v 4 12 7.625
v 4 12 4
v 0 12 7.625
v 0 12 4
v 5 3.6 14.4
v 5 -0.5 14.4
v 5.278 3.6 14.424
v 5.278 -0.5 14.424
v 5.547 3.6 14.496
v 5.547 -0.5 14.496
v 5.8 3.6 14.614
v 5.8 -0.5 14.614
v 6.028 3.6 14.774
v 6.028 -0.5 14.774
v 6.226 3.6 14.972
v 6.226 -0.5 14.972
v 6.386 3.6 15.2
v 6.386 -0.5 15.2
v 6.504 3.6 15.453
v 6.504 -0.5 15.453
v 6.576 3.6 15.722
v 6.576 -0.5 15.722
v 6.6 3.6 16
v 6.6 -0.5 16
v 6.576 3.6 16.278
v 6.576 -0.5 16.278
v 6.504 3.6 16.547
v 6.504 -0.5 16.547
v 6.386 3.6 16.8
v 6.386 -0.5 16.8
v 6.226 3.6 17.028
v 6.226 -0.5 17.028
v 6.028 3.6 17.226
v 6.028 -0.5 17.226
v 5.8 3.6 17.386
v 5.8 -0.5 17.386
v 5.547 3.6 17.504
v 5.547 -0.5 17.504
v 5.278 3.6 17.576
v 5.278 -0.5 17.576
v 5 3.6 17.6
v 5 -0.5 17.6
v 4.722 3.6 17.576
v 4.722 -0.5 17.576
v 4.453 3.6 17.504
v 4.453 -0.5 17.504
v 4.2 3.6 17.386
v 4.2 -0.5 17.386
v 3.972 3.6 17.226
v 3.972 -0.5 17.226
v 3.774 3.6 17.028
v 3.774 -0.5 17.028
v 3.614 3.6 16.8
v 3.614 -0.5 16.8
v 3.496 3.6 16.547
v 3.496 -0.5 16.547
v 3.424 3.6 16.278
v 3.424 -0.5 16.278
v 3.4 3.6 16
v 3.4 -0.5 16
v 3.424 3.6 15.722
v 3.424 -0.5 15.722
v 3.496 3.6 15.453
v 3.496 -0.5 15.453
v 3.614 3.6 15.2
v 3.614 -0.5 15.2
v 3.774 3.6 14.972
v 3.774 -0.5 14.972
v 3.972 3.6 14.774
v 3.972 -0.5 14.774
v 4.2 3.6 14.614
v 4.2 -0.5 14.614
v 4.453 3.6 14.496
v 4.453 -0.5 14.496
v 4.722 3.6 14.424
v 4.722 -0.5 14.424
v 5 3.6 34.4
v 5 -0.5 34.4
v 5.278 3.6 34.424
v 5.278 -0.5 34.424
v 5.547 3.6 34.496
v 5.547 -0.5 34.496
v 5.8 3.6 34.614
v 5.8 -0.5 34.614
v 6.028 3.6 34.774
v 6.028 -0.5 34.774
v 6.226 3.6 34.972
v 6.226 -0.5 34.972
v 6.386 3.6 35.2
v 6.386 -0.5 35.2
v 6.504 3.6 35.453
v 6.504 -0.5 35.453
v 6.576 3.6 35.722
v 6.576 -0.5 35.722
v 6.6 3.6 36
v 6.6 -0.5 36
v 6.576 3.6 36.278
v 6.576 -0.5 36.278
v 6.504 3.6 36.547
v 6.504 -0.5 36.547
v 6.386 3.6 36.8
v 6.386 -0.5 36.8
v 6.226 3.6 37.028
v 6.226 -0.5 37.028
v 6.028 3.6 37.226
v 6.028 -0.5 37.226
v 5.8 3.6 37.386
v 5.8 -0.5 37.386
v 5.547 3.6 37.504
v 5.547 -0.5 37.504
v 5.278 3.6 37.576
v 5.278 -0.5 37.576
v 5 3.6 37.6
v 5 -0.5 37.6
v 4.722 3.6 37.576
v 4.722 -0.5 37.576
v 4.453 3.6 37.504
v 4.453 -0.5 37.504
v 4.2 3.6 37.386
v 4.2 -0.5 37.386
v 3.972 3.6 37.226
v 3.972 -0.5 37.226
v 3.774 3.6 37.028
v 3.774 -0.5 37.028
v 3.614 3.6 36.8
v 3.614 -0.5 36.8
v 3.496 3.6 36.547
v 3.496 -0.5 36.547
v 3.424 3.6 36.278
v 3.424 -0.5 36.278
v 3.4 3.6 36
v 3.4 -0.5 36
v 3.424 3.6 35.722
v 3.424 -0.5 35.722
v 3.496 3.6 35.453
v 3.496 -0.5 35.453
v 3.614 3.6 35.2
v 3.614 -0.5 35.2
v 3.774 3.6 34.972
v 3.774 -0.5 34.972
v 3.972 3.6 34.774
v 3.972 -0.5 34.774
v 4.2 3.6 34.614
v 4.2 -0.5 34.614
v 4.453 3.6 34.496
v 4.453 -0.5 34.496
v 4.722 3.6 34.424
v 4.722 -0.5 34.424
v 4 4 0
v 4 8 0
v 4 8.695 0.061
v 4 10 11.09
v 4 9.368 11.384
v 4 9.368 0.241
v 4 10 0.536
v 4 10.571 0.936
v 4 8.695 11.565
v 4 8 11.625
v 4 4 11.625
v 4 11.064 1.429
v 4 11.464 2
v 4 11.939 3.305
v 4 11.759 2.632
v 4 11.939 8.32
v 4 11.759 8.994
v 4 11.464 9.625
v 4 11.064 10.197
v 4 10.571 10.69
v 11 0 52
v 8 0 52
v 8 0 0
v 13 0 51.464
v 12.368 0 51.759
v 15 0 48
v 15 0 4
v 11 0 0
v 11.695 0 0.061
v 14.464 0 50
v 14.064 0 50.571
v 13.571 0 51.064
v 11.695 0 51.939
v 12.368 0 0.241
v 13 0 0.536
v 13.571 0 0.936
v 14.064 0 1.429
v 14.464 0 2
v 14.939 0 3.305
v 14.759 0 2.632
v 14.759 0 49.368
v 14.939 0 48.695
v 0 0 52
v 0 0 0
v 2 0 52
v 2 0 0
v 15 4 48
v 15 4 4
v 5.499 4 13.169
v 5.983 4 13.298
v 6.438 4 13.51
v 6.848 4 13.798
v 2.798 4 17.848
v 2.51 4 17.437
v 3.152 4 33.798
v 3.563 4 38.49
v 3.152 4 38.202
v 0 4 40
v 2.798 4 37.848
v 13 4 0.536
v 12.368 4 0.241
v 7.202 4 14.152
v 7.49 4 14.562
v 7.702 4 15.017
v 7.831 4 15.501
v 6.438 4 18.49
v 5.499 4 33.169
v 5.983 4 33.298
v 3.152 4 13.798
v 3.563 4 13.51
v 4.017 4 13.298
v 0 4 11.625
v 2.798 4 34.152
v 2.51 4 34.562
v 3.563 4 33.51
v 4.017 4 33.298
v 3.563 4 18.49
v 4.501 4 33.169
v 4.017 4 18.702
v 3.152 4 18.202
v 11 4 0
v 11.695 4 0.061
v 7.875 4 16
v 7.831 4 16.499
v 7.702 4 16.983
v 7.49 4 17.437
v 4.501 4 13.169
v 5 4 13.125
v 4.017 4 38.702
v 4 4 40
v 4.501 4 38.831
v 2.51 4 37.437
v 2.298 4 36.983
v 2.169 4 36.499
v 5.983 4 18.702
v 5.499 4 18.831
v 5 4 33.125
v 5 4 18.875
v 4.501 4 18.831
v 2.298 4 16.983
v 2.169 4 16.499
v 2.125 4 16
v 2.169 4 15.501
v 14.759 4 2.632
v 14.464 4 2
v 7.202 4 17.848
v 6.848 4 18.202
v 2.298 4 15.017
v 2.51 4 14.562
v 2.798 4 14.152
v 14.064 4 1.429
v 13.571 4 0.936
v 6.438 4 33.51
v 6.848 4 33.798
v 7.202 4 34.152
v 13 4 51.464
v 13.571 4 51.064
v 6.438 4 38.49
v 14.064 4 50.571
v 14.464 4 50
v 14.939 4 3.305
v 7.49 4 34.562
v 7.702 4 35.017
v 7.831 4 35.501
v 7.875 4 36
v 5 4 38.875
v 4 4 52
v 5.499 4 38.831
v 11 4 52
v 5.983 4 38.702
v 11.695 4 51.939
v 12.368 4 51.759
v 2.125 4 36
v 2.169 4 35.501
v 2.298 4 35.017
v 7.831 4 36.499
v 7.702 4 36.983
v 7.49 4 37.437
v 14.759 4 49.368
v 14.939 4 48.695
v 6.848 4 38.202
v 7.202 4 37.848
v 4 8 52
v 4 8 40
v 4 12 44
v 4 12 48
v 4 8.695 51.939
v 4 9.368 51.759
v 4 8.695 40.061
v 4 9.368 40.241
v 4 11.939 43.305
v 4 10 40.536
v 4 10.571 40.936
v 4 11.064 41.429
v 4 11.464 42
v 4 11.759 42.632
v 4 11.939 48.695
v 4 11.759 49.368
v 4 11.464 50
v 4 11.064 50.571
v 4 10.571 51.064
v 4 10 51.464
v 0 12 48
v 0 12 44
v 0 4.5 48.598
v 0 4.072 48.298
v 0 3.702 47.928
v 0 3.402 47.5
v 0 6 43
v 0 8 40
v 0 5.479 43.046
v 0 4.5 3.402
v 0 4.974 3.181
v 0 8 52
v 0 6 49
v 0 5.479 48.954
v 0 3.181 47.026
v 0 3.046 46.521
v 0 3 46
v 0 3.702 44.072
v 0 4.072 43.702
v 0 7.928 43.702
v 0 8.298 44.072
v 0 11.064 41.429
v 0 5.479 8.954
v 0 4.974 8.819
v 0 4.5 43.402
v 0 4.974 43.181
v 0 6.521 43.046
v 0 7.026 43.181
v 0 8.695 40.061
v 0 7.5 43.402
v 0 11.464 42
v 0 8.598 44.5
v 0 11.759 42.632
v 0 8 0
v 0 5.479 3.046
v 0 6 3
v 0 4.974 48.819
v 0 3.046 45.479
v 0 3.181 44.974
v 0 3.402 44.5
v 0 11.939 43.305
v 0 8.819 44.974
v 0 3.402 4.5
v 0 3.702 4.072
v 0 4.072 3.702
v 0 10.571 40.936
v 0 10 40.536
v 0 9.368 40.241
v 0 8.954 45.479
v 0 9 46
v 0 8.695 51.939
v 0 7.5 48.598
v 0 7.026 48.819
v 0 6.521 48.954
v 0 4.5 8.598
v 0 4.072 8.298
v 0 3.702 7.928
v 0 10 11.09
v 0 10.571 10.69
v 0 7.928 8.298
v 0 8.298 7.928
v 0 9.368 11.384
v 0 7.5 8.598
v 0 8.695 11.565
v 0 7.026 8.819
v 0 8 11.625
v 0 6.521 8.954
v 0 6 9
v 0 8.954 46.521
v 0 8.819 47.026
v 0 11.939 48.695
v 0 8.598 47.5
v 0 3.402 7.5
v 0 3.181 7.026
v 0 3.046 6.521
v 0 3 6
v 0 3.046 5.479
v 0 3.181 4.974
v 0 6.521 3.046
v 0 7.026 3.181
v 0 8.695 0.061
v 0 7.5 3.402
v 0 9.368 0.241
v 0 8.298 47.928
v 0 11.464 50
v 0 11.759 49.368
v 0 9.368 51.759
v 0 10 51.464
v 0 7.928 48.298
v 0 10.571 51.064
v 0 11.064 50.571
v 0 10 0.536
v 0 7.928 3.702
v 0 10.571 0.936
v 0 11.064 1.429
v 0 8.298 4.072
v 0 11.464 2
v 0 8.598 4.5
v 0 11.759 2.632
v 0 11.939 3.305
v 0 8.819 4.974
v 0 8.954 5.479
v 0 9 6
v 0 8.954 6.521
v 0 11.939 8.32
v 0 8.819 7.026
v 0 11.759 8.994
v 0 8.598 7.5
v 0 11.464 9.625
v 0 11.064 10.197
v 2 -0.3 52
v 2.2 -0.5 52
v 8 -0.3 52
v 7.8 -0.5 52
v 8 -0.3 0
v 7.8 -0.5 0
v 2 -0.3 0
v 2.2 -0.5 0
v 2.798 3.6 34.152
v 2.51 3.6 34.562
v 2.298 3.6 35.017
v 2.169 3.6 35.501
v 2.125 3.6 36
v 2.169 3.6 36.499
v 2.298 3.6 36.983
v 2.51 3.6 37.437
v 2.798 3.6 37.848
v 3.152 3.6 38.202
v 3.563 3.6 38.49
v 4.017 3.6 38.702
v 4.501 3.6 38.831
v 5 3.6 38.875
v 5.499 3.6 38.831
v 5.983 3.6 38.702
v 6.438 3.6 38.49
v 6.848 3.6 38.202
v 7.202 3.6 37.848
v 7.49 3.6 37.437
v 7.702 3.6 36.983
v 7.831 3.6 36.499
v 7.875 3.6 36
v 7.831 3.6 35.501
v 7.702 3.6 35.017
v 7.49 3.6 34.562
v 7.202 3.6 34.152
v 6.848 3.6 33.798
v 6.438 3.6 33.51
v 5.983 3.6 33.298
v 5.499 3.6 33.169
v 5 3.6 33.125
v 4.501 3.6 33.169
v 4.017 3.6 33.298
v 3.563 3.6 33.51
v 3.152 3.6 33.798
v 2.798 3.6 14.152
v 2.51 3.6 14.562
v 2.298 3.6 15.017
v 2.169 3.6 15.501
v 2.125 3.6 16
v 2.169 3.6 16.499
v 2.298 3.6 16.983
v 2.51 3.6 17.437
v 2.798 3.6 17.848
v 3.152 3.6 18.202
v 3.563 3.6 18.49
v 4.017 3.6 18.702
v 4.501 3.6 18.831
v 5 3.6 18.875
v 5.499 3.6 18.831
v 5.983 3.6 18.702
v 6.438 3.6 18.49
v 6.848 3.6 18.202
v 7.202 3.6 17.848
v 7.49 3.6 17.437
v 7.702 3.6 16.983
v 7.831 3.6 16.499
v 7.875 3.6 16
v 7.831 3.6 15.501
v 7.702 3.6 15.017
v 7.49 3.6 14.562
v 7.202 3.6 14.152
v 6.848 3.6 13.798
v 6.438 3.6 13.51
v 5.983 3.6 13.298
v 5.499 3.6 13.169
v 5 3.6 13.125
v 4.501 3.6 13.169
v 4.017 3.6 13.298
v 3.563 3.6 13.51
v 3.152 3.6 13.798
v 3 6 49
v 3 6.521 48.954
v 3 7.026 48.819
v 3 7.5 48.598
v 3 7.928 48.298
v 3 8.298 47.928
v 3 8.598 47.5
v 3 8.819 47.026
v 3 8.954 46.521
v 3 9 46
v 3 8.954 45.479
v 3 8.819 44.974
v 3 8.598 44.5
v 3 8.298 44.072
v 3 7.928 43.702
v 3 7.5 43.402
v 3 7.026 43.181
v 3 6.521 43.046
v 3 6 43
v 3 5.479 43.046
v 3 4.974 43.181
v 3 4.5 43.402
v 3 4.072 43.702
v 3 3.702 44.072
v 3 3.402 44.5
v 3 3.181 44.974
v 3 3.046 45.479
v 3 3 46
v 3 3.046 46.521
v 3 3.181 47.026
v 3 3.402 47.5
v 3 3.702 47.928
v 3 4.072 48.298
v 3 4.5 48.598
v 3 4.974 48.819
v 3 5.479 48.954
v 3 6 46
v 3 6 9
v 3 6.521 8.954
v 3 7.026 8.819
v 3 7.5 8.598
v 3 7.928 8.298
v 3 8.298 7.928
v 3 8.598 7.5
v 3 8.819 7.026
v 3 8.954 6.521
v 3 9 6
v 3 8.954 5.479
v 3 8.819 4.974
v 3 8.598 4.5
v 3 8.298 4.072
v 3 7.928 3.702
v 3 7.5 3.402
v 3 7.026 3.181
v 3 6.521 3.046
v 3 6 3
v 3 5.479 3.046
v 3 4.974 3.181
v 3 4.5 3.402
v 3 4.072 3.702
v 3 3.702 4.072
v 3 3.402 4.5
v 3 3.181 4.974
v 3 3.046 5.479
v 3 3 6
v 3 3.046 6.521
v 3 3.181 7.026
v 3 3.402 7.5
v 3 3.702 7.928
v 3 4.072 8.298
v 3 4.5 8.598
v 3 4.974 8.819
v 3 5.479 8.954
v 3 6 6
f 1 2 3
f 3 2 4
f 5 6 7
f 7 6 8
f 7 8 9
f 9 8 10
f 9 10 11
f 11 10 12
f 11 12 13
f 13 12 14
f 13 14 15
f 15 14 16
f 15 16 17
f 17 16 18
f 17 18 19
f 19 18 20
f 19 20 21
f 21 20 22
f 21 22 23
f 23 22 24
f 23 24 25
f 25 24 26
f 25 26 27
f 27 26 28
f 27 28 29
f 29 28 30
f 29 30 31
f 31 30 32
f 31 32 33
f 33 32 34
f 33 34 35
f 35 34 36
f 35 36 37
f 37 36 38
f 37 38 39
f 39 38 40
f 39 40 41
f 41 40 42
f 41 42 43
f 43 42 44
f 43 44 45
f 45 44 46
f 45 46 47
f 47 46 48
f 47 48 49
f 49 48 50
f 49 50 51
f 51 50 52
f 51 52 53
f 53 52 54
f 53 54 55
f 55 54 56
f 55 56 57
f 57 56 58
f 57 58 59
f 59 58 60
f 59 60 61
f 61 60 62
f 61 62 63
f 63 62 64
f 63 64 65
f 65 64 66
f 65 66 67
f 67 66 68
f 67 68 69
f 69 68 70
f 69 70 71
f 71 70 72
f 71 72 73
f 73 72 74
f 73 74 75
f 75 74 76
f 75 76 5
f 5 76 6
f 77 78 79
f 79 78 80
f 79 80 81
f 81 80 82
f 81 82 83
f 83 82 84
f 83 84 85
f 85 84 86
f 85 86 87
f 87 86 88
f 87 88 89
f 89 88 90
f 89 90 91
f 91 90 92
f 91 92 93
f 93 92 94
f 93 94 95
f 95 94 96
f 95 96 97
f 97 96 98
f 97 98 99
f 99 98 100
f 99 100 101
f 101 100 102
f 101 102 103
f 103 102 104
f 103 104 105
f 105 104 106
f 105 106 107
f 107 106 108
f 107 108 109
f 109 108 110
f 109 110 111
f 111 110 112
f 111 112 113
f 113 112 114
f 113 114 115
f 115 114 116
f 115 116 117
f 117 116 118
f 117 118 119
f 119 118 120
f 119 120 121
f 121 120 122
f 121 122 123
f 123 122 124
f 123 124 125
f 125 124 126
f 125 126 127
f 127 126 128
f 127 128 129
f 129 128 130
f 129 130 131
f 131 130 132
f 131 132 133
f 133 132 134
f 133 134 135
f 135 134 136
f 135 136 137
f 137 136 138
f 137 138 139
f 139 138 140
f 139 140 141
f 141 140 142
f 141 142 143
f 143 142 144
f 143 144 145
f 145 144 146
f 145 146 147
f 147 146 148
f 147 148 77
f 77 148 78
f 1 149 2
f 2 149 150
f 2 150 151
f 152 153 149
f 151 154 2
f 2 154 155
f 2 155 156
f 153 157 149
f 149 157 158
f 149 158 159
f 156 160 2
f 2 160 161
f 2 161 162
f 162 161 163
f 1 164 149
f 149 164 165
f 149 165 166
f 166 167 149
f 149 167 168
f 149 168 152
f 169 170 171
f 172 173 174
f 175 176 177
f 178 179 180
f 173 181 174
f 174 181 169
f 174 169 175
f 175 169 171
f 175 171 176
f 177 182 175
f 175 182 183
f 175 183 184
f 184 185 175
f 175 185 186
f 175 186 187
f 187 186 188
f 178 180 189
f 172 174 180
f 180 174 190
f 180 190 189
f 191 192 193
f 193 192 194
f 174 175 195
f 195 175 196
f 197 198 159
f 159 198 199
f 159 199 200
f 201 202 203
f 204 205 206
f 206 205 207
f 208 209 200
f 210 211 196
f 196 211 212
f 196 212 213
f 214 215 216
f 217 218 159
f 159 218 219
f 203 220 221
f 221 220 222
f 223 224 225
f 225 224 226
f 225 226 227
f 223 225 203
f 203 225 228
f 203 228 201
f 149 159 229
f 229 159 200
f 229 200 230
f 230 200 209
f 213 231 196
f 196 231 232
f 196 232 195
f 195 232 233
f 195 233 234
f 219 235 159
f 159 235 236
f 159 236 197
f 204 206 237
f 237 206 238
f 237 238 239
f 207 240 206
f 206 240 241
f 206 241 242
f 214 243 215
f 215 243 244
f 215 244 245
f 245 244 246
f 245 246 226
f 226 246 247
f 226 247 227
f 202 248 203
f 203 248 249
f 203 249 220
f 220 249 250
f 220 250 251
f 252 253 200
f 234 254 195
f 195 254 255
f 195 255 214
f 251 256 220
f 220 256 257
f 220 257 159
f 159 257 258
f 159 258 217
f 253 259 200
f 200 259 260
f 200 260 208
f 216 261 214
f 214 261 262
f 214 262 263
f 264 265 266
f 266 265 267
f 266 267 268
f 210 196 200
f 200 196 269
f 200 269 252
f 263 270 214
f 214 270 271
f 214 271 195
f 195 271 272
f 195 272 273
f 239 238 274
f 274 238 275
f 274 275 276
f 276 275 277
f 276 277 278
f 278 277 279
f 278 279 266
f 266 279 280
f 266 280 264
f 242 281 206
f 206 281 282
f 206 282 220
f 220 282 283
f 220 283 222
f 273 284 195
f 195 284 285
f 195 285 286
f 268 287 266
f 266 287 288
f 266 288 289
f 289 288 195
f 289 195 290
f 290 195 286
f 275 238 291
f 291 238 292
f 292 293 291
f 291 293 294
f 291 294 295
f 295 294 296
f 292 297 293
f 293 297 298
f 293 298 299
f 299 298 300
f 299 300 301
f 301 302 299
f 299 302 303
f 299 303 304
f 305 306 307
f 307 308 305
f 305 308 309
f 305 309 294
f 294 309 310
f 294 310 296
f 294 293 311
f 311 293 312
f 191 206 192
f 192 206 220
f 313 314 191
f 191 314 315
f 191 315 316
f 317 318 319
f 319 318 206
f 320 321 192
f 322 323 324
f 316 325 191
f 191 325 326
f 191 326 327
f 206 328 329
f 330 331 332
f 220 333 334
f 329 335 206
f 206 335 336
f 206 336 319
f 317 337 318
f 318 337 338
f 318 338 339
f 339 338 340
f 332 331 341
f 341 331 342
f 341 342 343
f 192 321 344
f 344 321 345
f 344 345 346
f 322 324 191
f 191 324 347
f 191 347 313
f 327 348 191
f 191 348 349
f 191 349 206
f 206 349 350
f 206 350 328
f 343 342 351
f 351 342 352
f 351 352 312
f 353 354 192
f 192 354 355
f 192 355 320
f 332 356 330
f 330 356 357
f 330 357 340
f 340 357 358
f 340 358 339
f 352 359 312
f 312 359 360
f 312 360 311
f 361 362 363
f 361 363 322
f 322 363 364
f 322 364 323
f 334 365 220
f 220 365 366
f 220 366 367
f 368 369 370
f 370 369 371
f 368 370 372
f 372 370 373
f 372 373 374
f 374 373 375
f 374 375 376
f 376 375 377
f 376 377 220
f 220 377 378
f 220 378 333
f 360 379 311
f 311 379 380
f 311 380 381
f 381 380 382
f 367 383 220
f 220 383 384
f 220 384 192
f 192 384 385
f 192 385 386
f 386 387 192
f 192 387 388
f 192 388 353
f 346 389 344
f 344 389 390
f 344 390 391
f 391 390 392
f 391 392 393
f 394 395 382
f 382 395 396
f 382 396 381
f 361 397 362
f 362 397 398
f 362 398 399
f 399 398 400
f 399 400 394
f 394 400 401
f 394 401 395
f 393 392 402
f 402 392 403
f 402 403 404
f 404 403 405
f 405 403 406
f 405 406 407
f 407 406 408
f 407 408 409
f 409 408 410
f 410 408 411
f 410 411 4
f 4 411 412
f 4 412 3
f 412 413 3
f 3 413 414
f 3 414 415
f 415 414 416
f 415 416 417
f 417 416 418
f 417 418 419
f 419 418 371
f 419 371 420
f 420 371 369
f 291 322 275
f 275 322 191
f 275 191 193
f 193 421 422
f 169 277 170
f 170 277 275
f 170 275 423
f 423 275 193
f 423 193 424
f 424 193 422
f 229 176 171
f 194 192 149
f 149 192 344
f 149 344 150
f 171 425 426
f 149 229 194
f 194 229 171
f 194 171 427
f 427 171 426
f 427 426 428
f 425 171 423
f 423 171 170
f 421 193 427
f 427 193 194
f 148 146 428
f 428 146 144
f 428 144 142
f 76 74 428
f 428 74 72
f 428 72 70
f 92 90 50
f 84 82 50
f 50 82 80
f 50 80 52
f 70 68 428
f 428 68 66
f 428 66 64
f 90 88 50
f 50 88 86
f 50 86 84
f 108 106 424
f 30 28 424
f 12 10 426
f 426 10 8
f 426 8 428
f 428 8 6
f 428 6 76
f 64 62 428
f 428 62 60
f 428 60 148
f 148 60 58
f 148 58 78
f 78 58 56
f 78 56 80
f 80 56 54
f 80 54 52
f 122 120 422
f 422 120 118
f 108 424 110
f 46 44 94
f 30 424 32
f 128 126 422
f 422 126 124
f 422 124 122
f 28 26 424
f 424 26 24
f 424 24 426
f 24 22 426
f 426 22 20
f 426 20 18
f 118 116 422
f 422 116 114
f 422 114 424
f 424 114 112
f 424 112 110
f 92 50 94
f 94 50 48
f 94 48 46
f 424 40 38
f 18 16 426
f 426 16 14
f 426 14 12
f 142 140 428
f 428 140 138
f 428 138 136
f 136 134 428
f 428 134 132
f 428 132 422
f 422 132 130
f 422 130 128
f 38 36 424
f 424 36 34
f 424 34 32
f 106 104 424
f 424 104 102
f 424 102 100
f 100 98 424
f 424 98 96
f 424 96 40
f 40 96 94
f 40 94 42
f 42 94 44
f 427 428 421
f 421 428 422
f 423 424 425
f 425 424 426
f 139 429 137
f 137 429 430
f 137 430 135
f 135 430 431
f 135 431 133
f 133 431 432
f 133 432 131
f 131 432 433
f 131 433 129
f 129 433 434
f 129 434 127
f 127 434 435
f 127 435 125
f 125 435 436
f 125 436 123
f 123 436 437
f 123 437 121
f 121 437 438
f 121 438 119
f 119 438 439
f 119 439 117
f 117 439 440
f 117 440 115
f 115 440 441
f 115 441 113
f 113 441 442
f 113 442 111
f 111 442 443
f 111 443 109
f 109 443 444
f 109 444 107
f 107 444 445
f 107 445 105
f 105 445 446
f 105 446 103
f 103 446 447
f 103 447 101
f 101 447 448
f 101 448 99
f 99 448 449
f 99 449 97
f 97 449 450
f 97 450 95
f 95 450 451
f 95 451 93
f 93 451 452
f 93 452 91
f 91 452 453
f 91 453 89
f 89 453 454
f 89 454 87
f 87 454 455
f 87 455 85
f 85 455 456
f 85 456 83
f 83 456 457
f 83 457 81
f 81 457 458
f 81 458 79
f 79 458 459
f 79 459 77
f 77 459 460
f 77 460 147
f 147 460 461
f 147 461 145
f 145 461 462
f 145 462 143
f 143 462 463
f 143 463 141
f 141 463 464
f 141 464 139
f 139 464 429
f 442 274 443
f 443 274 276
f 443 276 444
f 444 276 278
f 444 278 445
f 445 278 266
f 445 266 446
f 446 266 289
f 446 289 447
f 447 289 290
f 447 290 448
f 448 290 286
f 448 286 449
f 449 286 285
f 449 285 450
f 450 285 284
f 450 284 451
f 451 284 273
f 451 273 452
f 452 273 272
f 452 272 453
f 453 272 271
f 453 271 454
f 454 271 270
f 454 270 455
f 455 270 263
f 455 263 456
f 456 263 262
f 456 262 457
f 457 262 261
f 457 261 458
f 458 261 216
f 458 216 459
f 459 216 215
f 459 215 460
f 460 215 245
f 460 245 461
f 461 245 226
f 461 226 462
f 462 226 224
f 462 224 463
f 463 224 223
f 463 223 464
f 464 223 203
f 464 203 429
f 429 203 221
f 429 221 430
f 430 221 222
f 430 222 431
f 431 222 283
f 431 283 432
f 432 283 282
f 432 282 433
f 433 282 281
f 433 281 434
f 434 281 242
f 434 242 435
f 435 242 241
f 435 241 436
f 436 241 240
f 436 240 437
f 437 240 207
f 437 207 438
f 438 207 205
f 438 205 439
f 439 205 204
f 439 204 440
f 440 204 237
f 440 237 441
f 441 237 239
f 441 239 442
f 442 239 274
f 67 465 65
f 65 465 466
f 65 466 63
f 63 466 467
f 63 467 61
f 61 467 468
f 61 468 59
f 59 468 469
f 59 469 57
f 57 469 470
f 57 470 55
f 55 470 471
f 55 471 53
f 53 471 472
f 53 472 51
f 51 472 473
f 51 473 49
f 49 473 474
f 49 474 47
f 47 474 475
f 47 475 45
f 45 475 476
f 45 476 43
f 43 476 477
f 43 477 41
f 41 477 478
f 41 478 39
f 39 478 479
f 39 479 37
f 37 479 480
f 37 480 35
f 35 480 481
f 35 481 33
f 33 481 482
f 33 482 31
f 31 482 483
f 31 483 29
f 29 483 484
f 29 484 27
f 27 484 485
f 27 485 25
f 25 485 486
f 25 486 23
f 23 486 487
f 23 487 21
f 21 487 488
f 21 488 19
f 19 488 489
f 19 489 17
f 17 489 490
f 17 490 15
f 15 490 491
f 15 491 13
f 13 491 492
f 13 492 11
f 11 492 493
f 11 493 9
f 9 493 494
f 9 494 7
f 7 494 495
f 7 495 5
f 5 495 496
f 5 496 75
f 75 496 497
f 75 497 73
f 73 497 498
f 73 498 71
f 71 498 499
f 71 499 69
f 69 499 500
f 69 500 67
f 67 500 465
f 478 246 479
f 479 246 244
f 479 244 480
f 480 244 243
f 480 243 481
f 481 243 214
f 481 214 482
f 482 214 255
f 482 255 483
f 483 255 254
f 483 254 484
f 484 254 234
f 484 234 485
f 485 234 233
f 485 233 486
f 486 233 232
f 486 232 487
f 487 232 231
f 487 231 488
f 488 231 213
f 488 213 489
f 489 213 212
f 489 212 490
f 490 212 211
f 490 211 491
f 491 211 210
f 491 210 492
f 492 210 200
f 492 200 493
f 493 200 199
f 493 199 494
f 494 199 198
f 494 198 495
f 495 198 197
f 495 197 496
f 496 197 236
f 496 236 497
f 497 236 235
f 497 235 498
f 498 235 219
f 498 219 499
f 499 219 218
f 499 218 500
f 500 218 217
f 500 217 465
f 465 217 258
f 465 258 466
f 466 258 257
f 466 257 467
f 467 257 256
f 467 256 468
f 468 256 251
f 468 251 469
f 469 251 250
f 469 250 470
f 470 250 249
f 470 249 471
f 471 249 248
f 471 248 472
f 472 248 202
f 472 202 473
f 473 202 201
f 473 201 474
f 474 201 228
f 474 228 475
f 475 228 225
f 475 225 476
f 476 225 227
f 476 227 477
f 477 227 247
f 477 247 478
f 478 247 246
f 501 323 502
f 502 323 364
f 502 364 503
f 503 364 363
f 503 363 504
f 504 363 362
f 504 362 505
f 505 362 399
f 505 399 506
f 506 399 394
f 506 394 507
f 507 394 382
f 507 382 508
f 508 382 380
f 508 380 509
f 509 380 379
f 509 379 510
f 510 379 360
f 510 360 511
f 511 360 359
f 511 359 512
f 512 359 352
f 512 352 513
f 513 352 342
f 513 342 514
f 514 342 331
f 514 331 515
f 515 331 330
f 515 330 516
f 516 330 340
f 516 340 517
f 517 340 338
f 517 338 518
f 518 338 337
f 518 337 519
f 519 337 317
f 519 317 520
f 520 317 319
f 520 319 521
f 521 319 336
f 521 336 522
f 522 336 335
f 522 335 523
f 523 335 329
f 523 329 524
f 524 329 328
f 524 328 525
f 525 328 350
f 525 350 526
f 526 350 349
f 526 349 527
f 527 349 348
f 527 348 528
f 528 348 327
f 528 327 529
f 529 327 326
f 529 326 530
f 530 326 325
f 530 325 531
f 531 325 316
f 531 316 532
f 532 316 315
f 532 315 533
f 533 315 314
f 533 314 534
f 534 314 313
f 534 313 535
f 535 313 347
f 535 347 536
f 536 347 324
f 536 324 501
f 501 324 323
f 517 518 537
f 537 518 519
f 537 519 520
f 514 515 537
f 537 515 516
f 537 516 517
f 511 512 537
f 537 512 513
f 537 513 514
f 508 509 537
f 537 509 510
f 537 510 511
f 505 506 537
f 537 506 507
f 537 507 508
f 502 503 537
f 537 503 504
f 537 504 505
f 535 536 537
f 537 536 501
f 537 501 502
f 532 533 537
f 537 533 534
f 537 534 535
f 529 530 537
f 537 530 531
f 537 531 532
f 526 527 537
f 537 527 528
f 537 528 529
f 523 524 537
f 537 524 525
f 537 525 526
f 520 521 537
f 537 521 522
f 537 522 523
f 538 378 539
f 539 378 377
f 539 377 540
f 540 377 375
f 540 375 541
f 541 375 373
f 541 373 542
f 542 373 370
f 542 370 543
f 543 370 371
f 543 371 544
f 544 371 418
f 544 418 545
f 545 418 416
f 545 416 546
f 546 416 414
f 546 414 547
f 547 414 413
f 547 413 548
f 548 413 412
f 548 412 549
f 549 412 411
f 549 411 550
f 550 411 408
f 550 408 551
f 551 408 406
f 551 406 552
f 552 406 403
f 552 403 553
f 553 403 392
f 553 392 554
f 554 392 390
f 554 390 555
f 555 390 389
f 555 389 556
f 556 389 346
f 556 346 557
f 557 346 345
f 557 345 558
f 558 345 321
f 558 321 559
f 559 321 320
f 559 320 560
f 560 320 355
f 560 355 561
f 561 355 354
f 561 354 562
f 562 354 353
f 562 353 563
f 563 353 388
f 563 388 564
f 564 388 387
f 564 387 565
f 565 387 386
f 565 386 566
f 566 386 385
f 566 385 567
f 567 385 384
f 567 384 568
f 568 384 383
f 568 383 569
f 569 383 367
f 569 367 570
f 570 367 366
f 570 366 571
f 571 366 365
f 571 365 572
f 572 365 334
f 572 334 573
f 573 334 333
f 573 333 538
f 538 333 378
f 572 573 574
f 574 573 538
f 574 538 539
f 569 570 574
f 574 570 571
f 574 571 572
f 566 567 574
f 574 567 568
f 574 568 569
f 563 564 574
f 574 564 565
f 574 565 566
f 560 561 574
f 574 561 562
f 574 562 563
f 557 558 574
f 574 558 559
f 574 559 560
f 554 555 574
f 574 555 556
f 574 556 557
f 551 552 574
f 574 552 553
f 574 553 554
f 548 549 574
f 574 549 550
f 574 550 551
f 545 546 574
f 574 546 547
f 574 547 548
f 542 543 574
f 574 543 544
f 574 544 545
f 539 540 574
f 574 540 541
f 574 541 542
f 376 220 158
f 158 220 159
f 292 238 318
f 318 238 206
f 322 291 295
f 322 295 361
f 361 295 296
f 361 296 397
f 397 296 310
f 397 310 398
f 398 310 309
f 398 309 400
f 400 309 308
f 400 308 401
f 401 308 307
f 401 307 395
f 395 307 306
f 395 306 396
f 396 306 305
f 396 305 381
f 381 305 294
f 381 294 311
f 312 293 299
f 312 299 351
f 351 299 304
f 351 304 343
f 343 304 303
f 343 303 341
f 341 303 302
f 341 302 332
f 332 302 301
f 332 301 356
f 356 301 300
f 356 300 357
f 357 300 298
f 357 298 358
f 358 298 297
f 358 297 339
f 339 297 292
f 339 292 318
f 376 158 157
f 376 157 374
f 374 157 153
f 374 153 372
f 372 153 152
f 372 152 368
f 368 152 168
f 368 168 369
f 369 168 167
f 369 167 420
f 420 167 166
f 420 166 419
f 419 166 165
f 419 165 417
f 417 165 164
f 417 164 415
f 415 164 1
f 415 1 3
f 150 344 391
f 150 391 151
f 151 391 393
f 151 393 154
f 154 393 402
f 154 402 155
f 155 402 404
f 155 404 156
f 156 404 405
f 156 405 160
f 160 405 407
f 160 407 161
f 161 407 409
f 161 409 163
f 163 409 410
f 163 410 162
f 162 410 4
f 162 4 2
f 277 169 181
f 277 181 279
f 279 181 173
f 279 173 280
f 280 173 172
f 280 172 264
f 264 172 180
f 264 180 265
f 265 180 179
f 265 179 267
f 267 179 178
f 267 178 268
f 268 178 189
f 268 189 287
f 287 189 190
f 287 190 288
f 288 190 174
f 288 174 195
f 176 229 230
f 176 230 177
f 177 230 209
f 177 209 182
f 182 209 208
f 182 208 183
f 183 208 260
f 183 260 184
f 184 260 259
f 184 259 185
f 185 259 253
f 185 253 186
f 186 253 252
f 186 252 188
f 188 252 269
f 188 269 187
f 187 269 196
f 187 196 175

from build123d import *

# Parameters (mm, degrees)
BOSS_EXTRUDE1_DEPTH    = 52
SKETCH5_W              = 6
SKETCH5_H              = 52
BOSS_BOTTOMALIGN_DEPTH = 0.5
FILLET1_SIZE           = 0.2
CUT_BOTTOMHOLE_REACH   = 57.545
SKETCH3_R              = 1.6
SKETCH7_R              = 2.875
CUT_EXTRUDE6_DEPTH     = 0.4
SKETCH6_R              = 3
CUT_MAGNET_DEPTH       = 3
CUT_EXTRUDE7_REACH     = 56.489
SKETCH8_W              = 28.374522614
SKETCH8_H              = 8
FILLET2_R              = 4
FILLET3_R              = 4


with BuildPart() as part:
    # Sketch1 → Boss-Extrude1 (new body)
    with BuildSketch(Plane.XY):
        Polygon((0, 0), (0, 12), (4, 12), (4, 4), (15, 4), (15, 0), align=None)
    extrude(amount=BOSS_EXTRUDE1_DEPTH)

    # Sketch5 → Boss-BottomAlign (add)
    with BuildSketch(Plane.XZ):
        with Locations((5, 26)):
            Rectangle(SKETCH5_W, SKETCH5_H)
    extrude(amount=BOSS_BOTTOMALIGN_DEPTH)

    # Fillet1
    fillet1_edges = [part.edges().sort_by_distance(p)[0] for p in [
        (8, -0.5, 26),
        (2, -0.5, 26),
    ]]
    chamfer(fillet1_edges, length=FILLET1_SIZE)

    # Sketch3 → Cut-BottomHole (cut, up to next)
    with BuildSketch(Plane.XZ.offset(0.5), mode=Mode.PRIVATE) as cut_bottomhole_sk1:
        with Locations(Location((5, 36, 0), (0, 0, 270))):
            Circle(SKETCH3_R)
    cut_bottomhole_tool1 = extrude(cut_bottomhole_sk1.sketch, amount=-CUT_BOTTOMHOLE_REACH, mode=Mode.PRIVATE) & part.part
    # Sketch3 → Cut-BottomHole (cut, up to next)
    with BuildSketch(Plane.XZ.offset(0.5), mode=Mode.PRIVATE) as cut_bottomhole_sk2:
        with Locations(Location((5, 16, 0), (0, 0, 231.317812547))):
            Circle(SKETCH3_R)
    cut_bottomhole_tool2 = extrude(cut_bottomhole_sk2.sketch, amount=-CUT_BOTTOMHOLE_REACH, mode=Mode.PRIVATE) & part.part
    add(cut_bottomhole_tool1.solids().sort_by_distance((5, -0.5, 36))[0], mode=Mode.SUBTRACT)
    add(cut_bottomhole_tool2.solids().sort_by_distance((5, -0.5, 16))[0], mode=Mode.SUBTRACT)

    # Sketch7 → Cut-Extrude6 (cut)
    with BuildSketch(Plane(origin=(0, 4, 0), x_dir=(1, 0, 0), z_dir=(0, 1, 0))):
        with Locations(Location((5, -36, 0), (0, 0, 270))):
            Circle(SKETCH7_R)
        with Locations(Location((5, -16, 0), (0, 0, 270))):
            Circle(SKETCH7_R)
    extrude(amount=-CUT_EXTRUDE6_DEPTH, mode=Mode.SUBTRACT)

    # Sketch6 → Cut-Magnet (cut)
    with BuildSketch(Plane.ZY):
        with Locations((6, 6)):
            Circle(SKETCH6_R)
        with Locations(Location((46, 6, 0), (0, 0, 180))):
            Circle(SKETCH6_R)
    extrude(amount=-CUT_MAGNET_DEPTH, mode=Mode.SUBTRACT)

    # Sketch8 → Cut-Extrude7 (cut, up to next)
    with BuildSketch(Plane(origin=(4, 0, 0), x_dir=(0, 0, -1), z_dir=(1, 0, 0)), mode=Mode.PRIVATE) as cut_extrude7_sk1:
        with Locations((-25.812738693, 8)):
            Rectangle(SKETCH8_W, SKETCH8_H)
    cut_extrude7_tool1 = extrude(cut_extrude7_sk1.sketch, amount=-CUT_EXTRUDE7_REACH, mode=Mode.PRIVATE) & part.part
    add(cut_extrude7_tool1.solids().sort_by_distance((4, 8, 25.812739))[0], mode=Mode.SUBTRACT)

    # Fillet2
    fillet2_edges = [part.edges().sort_by_distance(p)[0] for p in [
        (2, 12, 11.625477386),
        (2, 12, 40),
        (2, 12, 52),
        (2, 12, 0),
    ]]
    fillet(fillet2_edges, radius=FILLET2_R)

    # Fillet3
    fillet3_edges = [part.edges().sort_by_distance(p)[0] for p in [
        (15, 2, 0),
        (15, 2, 52),
    ]]
    fillet(fillet3_edges, radius=FILLET3_R)


solid = part.part
